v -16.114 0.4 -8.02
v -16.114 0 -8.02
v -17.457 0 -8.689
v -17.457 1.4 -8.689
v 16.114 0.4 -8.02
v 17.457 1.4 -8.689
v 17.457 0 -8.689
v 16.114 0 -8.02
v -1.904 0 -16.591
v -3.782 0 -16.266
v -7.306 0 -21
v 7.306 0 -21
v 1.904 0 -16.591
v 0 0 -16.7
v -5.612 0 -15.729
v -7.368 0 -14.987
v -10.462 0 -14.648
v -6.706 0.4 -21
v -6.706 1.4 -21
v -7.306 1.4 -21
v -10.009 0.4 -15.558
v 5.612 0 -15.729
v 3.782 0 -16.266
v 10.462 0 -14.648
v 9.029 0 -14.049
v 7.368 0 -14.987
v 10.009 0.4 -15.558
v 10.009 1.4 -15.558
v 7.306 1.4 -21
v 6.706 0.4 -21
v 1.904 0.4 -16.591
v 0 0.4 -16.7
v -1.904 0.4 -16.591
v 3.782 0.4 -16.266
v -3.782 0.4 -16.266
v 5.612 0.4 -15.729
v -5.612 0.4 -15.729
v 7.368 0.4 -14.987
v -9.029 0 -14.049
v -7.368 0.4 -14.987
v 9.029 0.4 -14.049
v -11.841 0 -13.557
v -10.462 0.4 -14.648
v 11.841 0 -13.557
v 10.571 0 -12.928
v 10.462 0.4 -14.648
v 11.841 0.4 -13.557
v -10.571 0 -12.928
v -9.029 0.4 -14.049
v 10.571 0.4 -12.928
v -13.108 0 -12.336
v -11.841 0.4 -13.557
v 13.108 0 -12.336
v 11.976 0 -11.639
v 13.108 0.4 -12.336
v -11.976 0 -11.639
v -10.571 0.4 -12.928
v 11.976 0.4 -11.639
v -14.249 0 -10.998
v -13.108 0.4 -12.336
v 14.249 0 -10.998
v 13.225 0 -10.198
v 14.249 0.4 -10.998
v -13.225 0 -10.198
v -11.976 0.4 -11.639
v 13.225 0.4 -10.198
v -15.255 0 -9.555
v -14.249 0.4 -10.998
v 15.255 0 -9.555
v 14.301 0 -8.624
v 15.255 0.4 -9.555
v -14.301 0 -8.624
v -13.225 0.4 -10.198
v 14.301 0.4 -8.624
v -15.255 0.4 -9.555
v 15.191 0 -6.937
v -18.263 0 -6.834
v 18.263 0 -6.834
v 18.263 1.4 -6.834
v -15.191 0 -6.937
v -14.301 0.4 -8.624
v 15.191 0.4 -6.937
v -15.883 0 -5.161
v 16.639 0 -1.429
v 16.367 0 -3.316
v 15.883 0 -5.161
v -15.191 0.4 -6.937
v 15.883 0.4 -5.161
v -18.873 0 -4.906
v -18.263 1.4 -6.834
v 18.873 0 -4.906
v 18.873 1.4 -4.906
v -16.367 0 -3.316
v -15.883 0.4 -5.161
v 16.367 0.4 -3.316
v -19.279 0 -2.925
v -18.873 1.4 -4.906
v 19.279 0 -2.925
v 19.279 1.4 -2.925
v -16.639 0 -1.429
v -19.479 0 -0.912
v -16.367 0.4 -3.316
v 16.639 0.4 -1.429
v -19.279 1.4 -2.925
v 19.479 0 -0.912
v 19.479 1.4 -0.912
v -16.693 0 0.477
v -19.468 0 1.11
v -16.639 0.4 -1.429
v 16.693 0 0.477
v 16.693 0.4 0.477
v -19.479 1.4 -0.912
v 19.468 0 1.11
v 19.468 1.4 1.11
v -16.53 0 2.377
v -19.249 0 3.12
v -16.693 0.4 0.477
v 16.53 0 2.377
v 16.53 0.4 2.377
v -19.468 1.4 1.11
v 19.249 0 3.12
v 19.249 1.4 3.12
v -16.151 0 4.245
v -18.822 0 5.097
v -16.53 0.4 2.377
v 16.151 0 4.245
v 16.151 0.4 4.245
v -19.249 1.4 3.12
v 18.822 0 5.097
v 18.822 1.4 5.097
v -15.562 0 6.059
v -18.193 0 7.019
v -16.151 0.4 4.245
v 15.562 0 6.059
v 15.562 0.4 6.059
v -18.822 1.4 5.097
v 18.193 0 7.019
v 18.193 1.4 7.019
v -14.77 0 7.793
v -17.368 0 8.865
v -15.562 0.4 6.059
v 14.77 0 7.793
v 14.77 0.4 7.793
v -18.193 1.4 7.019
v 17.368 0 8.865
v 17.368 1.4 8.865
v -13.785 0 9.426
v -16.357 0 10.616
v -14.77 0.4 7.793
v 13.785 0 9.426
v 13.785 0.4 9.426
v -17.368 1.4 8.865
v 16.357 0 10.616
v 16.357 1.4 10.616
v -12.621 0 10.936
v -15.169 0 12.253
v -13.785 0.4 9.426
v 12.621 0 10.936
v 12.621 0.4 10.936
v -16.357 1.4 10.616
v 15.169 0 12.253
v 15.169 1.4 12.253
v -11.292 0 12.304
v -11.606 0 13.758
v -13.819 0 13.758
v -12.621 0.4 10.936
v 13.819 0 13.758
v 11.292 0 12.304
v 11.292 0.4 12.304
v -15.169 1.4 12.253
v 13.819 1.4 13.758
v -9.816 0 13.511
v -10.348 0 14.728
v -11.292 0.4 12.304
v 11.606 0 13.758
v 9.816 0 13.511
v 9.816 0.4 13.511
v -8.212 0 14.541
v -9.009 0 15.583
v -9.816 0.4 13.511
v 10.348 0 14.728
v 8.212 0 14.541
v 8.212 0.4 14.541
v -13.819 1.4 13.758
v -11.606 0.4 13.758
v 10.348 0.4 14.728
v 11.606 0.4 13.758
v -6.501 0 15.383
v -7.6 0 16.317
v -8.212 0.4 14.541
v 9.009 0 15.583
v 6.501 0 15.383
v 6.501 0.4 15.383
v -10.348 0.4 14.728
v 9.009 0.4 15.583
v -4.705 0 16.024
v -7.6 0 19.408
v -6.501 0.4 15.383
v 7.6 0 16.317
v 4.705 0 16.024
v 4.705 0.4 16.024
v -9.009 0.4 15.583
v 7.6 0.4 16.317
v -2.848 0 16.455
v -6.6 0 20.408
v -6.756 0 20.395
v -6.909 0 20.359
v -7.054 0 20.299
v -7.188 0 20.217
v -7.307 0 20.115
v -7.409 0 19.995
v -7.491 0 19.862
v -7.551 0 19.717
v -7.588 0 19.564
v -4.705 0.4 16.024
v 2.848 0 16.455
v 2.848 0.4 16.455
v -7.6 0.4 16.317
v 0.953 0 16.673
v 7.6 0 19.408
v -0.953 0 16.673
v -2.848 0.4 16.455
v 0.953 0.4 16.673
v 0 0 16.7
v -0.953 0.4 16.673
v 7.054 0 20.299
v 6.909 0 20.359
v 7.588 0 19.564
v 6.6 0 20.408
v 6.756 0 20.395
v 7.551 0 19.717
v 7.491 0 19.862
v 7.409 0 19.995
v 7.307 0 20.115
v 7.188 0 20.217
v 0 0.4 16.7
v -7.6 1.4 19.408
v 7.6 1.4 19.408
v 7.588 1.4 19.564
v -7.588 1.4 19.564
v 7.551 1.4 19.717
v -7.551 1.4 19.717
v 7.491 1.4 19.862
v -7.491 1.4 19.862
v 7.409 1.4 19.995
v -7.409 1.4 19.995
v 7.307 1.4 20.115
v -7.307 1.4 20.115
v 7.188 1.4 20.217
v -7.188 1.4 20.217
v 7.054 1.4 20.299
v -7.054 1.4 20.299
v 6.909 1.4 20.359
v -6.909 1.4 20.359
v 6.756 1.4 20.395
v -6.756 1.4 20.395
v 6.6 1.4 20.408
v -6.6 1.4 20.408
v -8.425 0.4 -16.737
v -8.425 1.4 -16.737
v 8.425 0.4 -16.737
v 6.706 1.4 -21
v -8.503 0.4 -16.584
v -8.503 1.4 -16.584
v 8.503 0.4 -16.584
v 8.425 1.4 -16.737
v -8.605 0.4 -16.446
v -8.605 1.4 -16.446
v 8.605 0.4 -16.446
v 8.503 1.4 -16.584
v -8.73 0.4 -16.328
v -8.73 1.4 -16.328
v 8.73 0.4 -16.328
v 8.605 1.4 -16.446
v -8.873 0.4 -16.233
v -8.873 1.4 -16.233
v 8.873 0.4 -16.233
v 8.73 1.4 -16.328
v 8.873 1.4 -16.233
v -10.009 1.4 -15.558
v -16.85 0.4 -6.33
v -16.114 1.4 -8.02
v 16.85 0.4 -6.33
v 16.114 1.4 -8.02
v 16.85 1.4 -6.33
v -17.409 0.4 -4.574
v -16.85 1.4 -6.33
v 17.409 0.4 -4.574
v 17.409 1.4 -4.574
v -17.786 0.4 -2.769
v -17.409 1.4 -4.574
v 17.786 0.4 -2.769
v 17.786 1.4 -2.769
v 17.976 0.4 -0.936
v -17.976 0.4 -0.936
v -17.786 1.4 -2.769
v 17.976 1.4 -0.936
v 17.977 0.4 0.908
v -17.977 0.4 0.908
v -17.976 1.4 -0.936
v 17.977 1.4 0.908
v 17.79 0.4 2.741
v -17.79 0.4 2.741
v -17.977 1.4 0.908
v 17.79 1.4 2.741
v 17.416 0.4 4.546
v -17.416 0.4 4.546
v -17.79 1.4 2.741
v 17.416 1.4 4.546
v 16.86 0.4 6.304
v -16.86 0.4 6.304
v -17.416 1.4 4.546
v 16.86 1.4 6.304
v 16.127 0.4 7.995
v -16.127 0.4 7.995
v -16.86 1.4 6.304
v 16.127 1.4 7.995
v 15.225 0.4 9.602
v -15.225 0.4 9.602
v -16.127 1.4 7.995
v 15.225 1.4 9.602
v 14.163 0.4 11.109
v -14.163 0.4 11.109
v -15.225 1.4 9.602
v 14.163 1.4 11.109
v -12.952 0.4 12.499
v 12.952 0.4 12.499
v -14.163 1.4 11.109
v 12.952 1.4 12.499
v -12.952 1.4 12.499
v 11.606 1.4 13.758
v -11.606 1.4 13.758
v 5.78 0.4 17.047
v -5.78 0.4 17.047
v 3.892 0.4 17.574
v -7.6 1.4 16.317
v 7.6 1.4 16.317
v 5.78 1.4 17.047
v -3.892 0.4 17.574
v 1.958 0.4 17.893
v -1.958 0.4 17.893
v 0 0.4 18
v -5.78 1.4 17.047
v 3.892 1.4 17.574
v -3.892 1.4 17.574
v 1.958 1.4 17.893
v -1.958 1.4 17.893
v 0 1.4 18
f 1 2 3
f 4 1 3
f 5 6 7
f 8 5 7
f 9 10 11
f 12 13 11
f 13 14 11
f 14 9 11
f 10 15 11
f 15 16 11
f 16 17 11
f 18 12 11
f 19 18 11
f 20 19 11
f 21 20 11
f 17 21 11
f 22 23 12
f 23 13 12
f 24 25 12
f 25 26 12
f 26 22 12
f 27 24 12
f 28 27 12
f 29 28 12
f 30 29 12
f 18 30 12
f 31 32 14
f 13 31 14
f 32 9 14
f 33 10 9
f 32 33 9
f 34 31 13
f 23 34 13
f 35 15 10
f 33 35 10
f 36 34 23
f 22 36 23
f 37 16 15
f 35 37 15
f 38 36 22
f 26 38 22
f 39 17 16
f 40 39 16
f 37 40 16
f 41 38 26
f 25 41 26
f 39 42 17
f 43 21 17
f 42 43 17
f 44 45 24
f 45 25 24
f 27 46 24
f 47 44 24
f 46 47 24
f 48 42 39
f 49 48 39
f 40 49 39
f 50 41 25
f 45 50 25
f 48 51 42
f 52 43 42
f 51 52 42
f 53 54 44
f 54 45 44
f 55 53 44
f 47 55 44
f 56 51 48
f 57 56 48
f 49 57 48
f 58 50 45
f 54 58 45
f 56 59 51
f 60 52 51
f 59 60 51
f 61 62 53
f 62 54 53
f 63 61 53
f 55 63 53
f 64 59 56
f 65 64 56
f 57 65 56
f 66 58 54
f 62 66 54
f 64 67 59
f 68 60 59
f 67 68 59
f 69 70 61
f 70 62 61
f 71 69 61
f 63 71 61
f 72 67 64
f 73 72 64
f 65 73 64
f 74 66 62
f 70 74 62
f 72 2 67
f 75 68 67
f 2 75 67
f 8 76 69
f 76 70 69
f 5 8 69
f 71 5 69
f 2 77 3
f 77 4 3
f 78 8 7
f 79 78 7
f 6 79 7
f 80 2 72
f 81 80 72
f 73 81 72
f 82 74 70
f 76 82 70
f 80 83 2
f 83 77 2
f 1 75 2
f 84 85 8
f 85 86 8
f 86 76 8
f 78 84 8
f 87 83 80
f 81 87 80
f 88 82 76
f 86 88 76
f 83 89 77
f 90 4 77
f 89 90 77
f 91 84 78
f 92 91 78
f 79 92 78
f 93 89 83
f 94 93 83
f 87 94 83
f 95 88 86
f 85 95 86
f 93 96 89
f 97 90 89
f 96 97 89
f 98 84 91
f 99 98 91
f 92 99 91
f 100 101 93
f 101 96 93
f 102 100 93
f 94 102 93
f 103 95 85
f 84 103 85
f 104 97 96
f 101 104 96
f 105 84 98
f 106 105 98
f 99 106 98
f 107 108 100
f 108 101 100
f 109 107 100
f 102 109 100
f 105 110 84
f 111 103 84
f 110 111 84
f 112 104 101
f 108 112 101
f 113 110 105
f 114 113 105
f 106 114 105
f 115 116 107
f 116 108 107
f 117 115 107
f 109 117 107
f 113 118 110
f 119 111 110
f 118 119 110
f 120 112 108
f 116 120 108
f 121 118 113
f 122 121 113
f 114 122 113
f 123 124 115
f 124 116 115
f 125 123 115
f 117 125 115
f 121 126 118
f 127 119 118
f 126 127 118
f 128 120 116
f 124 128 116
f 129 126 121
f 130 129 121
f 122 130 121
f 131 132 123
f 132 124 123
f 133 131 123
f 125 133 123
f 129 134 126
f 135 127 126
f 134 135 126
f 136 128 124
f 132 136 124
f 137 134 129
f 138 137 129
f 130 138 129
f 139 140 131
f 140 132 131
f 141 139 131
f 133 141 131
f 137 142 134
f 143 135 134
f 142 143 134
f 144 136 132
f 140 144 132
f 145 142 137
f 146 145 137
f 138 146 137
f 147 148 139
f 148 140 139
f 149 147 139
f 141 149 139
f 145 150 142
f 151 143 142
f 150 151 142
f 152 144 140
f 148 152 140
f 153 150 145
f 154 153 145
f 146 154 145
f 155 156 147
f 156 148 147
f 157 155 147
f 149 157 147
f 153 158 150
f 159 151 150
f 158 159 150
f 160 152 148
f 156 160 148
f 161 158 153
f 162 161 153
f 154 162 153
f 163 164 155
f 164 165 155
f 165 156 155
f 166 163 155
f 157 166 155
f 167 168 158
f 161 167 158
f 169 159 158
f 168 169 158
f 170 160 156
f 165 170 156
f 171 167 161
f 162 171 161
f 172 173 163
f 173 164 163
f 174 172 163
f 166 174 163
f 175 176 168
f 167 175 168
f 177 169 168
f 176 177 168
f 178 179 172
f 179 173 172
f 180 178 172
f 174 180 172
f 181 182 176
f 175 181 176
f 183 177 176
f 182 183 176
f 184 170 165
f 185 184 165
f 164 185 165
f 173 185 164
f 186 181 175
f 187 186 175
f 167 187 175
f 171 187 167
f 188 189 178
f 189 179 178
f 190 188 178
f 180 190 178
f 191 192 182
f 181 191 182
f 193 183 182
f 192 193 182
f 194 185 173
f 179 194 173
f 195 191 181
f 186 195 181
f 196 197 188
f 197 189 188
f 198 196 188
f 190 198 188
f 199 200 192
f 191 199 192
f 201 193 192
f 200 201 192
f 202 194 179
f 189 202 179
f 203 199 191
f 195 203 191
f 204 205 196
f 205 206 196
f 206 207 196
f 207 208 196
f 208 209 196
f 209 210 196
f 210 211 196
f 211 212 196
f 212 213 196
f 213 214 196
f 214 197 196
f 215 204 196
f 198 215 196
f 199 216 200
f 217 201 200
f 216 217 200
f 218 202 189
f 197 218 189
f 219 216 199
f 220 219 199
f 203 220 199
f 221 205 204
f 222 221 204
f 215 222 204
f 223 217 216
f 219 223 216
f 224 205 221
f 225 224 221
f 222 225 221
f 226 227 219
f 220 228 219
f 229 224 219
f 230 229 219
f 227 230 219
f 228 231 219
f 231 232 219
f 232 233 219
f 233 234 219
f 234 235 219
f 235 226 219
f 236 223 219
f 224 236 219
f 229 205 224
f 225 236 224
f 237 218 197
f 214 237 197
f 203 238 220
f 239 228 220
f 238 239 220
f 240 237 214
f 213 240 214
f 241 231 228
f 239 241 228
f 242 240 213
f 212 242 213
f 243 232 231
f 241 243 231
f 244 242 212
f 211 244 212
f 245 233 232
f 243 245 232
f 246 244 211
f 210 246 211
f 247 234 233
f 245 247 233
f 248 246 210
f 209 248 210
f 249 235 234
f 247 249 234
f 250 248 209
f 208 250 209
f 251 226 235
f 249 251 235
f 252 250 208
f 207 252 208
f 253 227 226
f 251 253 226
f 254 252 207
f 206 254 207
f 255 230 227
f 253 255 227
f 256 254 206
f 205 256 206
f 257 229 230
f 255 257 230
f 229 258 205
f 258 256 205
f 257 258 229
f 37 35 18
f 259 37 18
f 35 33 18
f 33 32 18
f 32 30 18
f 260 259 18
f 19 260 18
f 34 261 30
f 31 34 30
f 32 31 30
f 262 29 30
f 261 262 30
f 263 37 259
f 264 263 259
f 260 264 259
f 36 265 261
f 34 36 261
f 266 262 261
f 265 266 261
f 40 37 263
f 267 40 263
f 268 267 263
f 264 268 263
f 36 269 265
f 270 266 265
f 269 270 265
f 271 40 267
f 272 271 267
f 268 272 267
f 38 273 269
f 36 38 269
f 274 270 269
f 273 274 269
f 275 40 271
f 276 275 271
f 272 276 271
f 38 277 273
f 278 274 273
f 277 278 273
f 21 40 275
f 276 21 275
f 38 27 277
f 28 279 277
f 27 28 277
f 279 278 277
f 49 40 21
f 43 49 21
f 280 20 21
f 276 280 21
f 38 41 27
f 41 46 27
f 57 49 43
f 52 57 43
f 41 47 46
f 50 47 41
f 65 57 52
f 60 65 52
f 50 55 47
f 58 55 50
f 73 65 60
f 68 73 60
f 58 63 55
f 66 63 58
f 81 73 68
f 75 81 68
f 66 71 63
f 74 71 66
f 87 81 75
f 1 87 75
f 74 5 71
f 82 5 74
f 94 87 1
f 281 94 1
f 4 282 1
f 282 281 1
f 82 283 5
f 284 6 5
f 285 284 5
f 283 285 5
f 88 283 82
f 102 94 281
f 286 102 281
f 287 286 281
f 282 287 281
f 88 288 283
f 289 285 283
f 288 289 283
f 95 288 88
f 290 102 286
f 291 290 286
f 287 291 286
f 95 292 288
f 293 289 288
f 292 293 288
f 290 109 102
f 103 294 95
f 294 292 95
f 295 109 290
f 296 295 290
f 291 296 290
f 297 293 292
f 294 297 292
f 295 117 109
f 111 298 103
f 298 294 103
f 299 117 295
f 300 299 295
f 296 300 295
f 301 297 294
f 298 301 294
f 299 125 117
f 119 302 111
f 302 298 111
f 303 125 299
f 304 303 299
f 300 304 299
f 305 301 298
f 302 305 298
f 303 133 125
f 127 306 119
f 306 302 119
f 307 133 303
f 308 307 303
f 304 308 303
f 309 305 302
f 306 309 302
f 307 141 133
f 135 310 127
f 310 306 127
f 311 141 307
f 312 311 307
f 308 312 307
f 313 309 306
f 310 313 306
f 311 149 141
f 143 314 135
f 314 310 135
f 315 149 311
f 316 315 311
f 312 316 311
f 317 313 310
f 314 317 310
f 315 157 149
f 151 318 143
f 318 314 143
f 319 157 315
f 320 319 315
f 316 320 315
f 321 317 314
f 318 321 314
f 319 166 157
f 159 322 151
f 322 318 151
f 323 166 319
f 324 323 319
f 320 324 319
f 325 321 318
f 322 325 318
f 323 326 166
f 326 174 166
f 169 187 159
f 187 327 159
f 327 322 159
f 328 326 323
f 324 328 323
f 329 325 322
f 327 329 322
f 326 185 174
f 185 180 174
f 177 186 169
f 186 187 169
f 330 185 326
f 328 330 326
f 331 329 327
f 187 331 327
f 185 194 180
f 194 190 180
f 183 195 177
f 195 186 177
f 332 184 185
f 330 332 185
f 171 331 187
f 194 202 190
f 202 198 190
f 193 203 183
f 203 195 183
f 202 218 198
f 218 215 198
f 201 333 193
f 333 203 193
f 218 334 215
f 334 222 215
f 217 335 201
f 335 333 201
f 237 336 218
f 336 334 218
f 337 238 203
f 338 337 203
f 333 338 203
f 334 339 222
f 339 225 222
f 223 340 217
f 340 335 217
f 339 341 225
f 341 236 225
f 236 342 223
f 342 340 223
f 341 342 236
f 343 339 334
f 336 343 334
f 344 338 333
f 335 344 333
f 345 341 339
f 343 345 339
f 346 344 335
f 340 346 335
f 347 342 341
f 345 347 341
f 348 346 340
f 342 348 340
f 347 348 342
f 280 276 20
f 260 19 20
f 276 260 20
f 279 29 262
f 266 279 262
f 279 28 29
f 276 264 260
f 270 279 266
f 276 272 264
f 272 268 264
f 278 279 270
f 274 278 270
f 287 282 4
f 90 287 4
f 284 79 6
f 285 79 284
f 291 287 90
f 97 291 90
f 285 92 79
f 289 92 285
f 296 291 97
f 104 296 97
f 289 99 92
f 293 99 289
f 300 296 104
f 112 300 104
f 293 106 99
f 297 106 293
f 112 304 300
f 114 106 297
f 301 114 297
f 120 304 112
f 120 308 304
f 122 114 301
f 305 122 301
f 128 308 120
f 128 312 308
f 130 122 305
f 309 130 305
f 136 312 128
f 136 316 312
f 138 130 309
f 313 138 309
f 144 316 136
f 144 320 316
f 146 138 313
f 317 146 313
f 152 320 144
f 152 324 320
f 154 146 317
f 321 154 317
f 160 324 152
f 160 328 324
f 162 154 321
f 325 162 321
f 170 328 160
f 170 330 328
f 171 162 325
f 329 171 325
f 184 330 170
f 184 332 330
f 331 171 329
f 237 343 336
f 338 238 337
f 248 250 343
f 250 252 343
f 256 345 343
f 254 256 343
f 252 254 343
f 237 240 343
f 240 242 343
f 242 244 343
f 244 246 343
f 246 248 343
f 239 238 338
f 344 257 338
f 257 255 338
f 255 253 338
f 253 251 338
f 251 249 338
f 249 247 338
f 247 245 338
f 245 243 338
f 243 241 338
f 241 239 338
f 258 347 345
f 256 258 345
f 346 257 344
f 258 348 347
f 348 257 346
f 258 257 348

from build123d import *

# Parameters (mm, degrees)
SKETCH1_R           = 16.7
BOSS_EXTRUDE1_DEPTH = 0.4
BOSS_EXTRUDE3_DEPTH = 1
FILLET1_R           = 1


with BuildPart() as part:
    # Sketch1 → Boss-Extrude1 (new body)
    with BuildSketch(Plane(origin=(0, 0, 0), x_dir=(1, 0, 0), z_dir=(0, 1, 0))):
        with BuildLine():
            Line((-7.305730618, 21), (-10.009228055, 15.558449593))
            Line((-10.009228055, 15.558449593), (-10.461777167, 14.647566983))
            ThreePointArc((-10.461777167, 14.647566983), (-13.695076666, 11.68096208), (-16.11449254, 8.020170209))
            Line((-16.11449254, 8.020170209), (-17.457366918, 8.688517726))
            ThreePointArc((-17.457366918, 8.688517726), (-19.248737127, -3.120275469), (-13.818649167, -13.758449593))
            Line((-13.818649167, -13.758449593), (-11.606251109, -13.758449593))
            ThreePointArc((-11.606251109, -13.758449593), (-9.687950737, -15.170484848), (-7.6, -16.316862443))
            Line((-7.6, -16.316862443), (-7.6, -20.407699946))
            Line((-7.6, -20.407699946), (7.6, -20.407699946))
            Line((7.6, -20.407699946), (7.6, -16.316862443))
            ThreePointArc((7.6, -16.316862443), (9.687950737, -15.170484848), (11.606251109, -13.758449593))
            Line((11.606251109, -13.758449593), (13.818649167, -13.758449593))
            ThreePointArc((13.818649167, -13.758449593), (19.248737127, -3.120275469), (17.457366918, 8.688517726))
            Line((17.457366918, 8.688517726), (16.11449254, 8.020170209))
            ThreePointArc((16.11449254, 8.020170209), (13.695076666, 11.68096208), (10.461777167, 14.647566983))
            Line((10.461777167, 14.647566983), (10.009228055, 15.558449593))
            Line((10.009228055, 15.558449593), (7.305730618, 21))
            Line((7.305730618, 21), (-7.305730618, 21))
        make_face()
        with Locations(Location((0, 0, 0), (0, 0, 270))):
            Circle(SKETCH1_R, mode=Mode.SUBTRACT)
    extrude(amount=BOSS_EXTRUDE1_DEPTH)

    # Sketch2 → Boss-Extrude3 (add)
    with BuildSketch(Plane(origin=(0, 0.4, 0), x_dir=(1, 0, 0), z_dir=(0, 1, 0))):
        with BuildLine():
            Line((-8.56095789, 16.4), (-6.705730618, 21))
            Line((-6.705730618, 21), (-7.305730618, 21))
            Line((-7.305730618, 21), (-10.009228055, 15.558449593))
            ThreePointArc((-10.009228055, 15.558449593), (-9.294622278, 15.995624299), (-8.56095789, 16.4))
        make_face()
        with BuildLine():
            Line((8.56095789, 16.4), (6.705730618, 21))
            Line((6.705730618, 21), (7.305730618, 21))
            Line((7.305730618, 21), (10.009228055, 15.558449593))
            ThreePointArc((10.009228055, 15.558449593), (9.294622278, 15.995624299), (8.56095789, 16.4))
        make_face()
        with BuildLine():
            Line((-7.6, -20.407699946), (7.6, -20.407699946))
            Line((7.6, -20.407699946), (7.6, -16.316862443))
            ThreePointArc((7.6, -16.316862443), (0, -18), (-7.6, -16.316862443))
            Line((-7.6, -16.316862443), (-7.6, -20.407699946))
        make_face()
        with BuildLine():
            Line((-16.11449254, 8.020170209), (-17.457366918, 8.688517726))
            ThreePointArc((-17.457366918, 8.688517726), (-19.248737127, -3.120275469), (-13.818649167, -13.758449593))
            Line((-13.818649167, -13.758449593), (-11.606251109, -13.758449593))
            ThreePointArc((-11.606251109, -13.758449593), (-17.626314908, -3.648701519), (-16.11449254, 8.020170209))
        make_face()
        with BuildLine():
            Line((17.457366918, 8.688517726), (16.11449254, 8.020170209))
            ThreePointArc((16.11449254, 8.020170209), (17.626314908, -3.648701519), (11.606251109, -13.758449593))
            Line((11.606251109, -13.758449593), (13.818649167, -13.758449593))
            ThreePointArc((13.818649167, -13.758449593), (19.248737127, -3.120275469), (17.457366918, 8.688517726))
        make_face()
    extrude(amount=BOSS_EXTRUDE3_DEPTH)

    # Fillet1
    fillet1_edges = [part.edges().sort_by_distance(p)[0] for p in [
        (7.6, 0.7, 20.407699946),
        (-7.6, 0.7, 20.407699946),
        (-8.56095789, 0.9, -16.4),
        (8.56095789, 0.9, -16.4),
    ]]
    fillet(fillet1_edges, radius=FILLET1_R)


solid = part.part
